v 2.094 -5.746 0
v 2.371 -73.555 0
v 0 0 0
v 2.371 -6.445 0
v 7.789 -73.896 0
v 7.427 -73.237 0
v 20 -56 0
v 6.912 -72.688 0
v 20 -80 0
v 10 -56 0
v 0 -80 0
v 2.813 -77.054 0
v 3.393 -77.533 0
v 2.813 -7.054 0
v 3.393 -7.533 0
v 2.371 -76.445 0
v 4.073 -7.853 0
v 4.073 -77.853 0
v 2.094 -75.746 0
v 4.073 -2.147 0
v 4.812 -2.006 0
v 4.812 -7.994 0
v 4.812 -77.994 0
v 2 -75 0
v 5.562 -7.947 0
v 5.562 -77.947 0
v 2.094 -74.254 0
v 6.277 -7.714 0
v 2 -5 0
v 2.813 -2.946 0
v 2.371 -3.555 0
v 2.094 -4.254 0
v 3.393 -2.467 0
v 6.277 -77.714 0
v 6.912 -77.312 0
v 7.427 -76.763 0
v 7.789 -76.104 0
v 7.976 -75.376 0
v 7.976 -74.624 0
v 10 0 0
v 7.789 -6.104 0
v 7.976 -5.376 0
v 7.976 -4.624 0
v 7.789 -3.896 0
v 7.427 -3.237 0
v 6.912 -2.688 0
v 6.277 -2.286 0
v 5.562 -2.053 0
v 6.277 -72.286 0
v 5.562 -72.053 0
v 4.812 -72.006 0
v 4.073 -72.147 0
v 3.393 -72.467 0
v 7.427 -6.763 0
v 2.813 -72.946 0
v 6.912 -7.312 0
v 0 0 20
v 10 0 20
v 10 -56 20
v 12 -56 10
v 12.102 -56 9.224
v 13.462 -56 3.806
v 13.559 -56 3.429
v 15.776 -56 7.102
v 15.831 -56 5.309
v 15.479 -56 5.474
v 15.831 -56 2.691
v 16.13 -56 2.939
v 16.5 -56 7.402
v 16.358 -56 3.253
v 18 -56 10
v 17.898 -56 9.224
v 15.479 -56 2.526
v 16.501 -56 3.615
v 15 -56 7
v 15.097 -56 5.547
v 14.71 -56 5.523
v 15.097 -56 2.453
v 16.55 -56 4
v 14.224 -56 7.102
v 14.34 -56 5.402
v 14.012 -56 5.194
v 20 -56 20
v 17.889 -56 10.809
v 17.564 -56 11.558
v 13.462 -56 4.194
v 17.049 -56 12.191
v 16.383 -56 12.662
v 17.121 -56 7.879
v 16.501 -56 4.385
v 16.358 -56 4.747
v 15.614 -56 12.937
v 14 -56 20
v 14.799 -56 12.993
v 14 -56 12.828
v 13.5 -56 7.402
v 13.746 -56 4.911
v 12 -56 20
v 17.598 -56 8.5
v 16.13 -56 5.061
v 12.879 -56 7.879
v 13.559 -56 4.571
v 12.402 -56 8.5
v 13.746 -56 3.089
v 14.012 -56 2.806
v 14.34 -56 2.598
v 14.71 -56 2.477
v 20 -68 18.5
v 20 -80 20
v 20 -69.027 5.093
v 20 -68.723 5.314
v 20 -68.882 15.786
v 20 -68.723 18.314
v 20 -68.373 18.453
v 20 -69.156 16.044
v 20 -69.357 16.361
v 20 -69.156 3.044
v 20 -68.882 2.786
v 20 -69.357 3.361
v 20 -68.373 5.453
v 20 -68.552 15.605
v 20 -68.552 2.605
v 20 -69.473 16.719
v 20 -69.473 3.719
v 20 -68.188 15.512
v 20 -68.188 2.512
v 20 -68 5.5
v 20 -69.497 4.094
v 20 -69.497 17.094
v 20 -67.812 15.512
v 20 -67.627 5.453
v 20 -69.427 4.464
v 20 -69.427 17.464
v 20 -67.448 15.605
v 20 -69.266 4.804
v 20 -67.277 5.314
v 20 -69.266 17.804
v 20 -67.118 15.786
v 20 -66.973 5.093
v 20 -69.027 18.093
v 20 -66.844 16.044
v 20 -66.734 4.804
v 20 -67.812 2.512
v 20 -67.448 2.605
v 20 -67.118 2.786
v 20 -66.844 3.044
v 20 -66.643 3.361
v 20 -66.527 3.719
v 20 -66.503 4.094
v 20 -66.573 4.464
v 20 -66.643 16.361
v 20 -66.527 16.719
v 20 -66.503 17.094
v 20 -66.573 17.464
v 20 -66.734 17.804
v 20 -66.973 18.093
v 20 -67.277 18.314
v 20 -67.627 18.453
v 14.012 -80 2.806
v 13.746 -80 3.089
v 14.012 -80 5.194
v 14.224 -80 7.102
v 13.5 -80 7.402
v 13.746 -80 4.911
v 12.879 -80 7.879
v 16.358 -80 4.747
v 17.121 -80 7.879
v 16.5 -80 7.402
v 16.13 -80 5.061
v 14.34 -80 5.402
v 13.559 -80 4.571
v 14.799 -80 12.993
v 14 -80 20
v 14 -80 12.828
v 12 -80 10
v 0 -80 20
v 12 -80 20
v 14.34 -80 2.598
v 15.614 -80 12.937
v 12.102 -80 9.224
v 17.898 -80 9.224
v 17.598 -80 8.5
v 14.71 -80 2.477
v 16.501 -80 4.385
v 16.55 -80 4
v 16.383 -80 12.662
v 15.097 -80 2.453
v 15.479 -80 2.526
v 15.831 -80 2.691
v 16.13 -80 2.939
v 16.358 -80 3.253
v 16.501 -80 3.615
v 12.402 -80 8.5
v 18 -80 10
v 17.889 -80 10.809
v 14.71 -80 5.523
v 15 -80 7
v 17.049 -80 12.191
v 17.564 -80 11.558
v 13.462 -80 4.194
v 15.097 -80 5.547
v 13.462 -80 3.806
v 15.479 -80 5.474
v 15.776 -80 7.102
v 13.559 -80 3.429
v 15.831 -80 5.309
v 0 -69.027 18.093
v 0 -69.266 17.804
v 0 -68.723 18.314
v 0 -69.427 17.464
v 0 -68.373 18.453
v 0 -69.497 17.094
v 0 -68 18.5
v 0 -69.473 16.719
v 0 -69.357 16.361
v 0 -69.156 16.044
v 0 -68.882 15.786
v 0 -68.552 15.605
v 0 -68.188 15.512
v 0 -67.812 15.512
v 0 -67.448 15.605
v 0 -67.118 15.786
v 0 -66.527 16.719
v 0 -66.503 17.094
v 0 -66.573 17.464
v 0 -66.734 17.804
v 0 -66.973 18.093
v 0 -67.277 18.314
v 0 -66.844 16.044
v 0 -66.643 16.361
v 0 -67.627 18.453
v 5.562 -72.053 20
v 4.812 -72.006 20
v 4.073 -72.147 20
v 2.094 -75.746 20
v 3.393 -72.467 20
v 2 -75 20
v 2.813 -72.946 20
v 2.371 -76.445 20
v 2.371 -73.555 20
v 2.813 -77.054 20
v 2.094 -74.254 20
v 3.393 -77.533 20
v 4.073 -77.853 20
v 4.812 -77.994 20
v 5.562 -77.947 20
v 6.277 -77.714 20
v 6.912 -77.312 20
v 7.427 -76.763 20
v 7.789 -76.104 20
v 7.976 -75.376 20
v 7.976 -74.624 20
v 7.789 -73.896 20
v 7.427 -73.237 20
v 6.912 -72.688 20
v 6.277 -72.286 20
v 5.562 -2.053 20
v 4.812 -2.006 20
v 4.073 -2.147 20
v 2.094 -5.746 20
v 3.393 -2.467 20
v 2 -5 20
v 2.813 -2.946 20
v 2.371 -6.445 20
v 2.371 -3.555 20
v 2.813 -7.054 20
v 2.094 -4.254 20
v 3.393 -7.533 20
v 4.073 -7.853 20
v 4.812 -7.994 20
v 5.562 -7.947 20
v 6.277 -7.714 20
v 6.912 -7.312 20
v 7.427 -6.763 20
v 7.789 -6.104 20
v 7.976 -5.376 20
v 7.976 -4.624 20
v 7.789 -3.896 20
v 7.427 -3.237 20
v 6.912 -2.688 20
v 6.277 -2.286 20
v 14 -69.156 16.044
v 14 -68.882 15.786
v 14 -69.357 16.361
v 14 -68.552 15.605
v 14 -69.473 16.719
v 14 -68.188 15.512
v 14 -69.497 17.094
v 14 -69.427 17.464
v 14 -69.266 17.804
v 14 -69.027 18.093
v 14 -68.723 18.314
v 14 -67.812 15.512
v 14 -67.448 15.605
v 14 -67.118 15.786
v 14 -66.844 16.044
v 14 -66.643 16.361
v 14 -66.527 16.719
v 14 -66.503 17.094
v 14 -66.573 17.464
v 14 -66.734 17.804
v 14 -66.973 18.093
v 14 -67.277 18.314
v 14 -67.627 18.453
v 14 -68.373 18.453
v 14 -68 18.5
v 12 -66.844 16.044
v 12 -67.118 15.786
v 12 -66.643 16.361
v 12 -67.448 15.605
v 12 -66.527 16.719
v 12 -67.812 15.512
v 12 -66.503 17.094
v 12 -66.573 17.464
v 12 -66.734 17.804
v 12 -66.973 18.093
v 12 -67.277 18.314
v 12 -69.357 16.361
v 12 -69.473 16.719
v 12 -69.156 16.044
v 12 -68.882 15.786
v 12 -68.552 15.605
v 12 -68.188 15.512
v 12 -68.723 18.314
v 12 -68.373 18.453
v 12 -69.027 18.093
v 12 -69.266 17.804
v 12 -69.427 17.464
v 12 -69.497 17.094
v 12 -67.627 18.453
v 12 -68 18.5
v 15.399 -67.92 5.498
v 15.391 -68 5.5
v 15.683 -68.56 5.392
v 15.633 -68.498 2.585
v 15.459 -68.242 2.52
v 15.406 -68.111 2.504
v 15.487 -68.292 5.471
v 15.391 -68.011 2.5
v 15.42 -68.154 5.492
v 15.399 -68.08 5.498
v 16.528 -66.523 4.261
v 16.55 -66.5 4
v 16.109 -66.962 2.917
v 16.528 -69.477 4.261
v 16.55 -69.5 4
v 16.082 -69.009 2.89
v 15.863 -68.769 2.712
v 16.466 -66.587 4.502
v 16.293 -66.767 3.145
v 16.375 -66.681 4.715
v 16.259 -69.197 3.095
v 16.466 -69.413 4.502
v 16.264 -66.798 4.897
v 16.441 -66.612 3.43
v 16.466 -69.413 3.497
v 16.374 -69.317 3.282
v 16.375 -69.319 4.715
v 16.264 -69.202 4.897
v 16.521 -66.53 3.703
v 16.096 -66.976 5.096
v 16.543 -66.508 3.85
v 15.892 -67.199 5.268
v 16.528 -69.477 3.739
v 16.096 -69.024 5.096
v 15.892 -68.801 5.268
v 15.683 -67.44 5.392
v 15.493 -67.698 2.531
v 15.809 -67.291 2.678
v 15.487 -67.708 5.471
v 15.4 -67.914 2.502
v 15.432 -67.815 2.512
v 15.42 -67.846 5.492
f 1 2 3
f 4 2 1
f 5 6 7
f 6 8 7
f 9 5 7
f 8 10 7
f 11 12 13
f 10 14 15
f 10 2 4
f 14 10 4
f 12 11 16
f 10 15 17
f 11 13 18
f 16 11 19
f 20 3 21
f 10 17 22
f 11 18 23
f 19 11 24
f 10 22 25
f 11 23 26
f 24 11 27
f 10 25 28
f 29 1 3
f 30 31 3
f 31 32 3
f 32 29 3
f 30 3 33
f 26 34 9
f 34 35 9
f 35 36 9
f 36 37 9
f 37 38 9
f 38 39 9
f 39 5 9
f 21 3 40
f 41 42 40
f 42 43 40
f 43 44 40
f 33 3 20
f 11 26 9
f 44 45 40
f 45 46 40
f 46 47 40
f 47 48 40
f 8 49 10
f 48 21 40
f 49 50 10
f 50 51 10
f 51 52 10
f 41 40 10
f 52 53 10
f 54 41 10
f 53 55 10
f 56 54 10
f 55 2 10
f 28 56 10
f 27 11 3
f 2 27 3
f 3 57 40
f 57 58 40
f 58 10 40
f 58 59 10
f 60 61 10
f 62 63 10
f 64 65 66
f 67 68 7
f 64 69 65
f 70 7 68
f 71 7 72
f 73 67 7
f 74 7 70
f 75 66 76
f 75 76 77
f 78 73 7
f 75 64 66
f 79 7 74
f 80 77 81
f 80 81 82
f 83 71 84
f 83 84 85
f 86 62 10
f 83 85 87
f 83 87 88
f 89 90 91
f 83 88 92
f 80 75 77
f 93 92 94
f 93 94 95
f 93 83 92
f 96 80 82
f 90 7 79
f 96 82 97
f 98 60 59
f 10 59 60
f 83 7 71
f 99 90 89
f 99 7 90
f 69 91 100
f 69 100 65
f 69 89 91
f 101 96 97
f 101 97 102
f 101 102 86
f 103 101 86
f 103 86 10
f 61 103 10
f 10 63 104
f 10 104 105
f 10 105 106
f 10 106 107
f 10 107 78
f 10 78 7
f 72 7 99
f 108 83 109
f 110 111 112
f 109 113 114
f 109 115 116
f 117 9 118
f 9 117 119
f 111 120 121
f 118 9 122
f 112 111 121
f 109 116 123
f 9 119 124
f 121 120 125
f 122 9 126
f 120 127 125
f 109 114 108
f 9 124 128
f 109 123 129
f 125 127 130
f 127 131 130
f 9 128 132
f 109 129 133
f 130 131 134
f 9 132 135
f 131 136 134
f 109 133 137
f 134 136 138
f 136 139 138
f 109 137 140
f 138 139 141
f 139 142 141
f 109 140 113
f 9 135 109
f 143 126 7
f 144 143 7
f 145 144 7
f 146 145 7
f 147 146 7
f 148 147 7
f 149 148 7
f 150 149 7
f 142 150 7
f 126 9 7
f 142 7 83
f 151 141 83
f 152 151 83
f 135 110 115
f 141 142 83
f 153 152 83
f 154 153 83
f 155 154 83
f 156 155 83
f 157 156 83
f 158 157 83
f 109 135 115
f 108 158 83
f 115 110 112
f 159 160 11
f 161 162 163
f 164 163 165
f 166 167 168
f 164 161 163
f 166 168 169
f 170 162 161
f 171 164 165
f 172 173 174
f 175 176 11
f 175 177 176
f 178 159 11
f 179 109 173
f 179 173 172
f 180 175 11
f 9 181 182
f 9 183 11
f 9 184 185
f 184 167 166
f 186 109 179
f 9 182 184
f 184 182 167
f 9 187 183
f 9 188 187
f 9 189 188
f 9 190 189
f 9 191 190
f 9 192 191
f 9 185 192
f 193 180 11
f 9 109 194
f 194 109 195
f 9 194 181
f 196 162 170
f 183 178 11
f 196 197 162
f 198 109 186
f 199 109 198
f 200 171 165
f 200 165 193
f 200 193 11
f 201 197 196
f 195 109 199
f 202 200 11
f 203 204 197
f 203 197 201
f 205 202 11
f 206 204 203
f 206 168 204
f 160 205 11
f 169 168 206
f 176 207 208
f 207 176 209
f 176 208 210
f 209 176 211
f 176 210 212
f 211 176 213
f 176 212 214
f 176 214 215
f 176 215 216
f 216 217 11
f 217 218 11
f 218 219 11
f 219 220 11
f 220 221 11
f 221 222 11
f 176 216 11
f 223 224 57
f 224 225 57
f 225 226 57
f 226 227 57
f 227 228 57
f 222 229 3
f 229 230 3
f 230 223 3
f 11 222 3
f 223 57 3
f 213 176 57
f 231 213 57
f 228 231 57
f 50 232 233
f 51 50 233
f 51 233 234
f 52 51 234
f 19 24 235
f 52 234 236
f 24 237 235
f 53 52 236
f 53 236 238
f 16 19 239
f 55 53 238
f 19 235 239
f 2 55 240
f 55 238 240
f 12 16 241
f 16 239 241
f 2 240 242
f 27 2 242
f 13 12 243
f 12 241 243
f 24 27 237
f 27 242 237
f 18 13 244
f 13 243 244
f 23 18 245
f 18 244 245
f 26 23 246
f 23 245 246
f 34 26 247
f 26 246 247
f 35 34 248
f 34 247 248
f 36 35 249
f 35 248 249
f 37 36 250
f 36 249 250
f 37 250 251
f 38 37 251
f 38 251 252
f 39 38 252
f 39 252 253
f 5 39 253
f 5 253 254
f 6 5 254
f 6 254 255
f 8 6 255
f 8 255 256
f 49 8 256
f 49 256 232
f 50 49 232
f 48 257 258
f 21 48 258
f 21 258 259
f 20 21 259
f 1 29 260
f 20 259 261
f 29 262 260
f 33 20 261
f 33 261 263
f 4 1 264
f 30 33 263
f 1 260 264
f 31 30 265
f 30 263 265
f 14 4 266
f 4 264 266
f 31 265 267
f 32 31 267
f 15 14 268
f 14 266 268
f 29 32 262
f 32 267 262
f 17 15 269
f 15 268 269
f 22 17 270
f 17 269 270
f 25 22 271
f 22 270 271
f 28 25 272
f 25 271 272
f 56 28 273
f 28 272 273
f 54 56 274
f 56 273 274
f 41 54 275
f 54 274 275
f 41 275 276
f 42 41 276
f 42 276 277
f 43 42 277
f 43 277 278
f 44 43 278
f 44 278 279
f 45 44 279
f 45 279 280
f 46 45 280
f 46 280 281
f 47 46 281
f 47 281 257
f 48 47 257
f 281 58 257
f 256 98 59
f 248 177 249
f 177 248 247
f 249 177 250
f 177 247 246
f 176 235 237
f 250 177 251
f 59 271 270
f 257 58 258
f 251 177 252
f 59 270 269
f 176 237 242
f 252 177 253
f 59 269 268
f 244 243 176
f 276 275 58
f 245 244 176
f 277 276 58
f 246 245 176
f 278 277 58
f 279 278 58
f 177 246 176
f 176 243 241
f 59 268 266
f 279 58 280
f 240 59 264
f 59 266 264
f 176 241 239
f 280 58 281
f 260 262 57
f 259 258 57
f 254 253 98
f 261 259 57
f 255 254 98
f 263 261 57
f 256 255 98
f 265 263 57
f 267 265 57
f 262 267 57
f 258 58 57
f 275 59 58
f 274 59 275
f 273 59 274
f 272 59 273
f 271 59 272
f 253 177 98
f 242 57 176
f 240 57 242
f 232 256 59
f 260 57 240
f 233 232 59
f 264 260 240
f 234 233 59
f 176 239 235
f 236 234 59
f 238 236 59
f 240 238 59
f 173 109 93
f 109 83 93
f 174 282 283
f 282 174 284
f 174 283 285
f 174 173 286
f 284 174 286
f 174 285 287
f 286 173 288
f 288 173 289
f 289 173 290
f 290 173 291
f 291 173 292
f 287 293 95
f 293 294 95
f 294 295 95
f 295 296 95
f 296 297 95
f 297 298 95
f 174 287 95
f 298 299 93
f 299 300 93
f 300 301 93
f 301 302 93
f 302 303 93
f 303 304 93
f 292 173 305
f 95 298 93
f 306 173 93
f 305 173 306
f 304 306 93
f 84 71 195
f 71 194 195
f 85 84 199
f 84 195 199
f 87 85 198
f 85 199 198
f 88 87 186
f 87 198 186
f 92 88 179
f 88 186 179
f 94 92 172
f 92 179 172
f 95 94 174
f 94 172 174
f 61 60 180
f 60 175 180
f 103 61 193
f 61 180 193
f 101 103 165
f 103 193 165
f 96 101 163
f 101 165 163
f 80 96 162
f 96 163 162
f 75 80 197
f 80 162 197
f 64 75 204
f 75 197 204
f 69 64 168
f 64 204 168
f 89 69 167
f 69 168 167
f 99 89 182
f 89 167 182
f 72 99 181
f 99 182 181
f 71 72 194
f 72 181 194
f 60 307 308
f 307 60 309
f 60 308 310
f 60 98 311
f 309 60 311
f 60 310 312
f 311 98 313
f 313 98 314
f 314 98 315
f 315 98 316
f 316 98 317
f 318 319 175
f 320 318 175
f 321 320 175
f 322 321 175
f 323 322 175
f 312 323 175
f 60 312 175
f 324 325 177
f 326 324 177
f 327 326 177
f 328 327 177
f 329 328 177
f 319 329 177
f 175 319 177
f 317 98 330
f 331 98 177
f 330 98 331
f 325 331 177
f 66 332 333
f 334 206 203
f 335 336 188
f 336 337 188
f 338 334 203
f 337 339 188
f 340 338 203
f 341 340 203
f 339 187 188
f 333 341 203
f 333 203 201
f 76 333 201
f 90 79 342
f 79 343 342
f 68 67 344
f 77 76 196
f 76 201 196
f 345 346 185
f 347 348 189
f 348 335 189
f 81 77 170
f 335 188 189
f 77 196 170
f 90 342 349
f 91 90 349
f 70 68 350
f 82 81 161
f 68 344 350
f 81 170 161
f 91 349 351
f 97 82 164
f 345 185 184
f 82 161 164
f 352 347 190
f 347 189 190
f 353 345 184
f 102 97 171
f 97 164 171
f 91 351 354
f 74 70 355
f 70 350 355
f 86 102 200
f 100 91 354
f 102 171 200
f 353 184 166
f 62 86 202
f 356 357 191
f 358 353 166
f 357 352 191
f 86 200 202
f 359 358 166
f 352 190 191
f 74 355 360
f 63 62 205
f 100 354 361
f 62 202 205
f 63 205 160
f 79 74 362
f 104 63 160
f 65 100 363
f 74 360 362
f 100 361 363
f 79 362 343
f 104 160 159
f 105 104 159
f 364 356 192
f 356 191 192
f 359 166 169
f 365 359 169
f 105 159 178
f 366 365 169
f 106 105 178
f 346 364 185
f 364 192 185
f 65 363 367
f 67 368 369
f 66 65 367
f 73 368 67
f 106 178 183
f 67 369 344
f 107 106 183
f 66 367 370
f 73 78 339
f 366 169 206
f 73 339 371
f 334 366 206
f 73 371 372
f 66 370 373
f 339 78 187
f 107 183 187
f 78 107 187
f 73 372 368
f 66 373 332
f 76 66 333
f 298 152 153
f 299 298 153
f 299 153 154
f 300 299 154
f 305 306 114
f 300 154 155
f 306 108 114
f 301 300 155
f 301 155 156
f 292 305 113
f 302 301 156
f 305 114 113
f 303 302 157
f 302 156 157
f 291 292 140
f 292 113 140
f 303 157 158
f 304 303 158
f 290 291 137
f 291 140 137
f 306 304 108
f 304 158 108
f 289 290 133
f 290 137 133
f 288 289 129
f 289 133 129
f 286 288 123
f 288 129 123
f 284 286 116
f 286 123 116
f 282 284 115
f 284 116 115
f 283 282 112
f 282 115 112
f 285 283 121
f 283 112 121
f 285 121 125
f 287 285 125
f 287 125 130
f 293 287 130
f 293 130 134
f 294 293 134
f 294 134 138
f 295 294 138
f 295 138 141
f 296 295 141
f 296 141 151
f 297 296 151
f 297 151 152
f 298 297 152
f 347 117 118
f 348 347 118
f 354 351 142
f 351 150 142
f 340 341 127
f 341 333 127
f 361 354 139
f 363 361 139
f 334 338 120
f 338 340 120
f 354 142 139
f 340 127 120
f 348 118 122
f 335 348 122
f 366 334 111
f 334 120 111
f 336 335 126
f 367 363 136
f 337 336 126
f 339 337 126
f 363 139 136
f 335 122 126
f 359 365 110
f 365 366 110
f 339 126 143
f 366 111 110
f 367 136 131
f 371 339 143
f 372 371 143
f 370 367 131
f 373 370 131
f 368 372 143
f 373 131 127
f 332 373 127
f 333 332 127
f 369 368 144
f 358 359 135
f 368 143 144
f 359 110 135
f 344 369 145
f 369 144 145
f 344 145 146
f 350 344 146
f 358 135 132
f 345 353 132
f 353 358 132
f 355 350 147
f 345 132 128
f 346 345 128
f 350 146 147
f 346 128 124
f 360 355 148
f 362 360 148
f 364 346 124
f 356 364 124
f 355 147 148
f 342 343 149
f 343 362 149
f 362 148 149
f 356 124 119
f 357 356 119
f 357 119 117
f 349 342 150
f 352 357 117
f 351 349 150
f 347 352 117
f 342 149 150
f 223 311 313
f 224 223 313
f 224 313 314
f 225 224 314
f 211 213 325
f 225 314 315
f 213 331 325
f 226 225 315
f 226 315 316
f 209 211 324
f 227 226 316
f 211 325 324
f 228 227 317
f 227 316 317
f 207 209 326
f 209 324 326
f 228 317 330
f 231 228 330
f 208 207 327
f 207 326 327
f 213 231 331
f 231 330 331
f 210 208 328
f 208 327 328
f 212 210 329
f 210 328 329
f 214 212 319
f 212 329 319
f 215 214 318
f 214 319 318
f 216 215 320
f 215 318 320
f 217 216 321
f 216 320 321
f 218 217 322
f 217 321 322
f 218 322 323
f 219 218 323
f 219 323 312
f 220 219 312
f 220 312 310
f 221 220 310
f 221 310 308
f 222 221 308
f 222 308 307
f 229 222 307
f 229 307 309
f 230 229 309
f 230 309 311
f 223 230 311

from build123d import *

# Parameters (mm, degrees)
SKETCH_W        = 20
SKETCH_H        = 20
PAD_DEPTH       = 80
SKETCH001_R     = 3
POCKET_DEPTH    = 20.001
SKETCH002_W     = 10
SKETCH002_H     = 56
POCKET001_DEPTH = 20.001
SKETCH003_R     = 3
SKETCH003_R_2   = 1.55
POCKET002_DEPTH = 80.001
SKETCH004_W     = 2
SKETCH004_H     = 24
POCKET003_DEPTH = 10
SKETCH005_R     = 1.5
POCKET004_DEPTH = 5
SKETCH006_R     = 1.5
POCKET005_DEPTH = 20.001


with BuildPart() as part:
    # Sketch → Pad (new body)
    with BuildSketch(Plane.XZ):
        with Locations((10, 10)):
            Rectangle(SKETCH_W, SKETCH_H)
    extrude(amount=PAD_DEPTH)

    # Sketch001 (on Face3 of Pad) → Pocket (cut, through all)
    with BuildSketch(Plane(origin=(0, 0, 20), x_dir=(-1, 0, 0), z_dir=(0, 0, 1))):
        with Locations((-5, 5)):
            Circle(SKETCH001_R)
        with Locations((-5, 75)):
            Circle(SKETCH001_R)
    extrude(amount=-POCKET_DEPTH, mode=Mode.SUBTRACT)

    # Sketch002 (on Face8 of Pocket) → Pocket001 (cut, through all)
    with BuildSketch(Plane(origin=(0, 0, 20), x_dir=(-1, 0, 0), z_dir=(0, 0, 1))):
        with Locations((-15, 28)):
            Rectangle(SKETCH002_W, SKETCH002_H)
    extrude(amount=-POCKET001_DEPTH, mode=Mode.SUBTRACT)

    # Sketch003 (on Face6 of Pocket001) → Pocket002 (cut, through all)
    with BuildSketch(Plane.XZ.offset(80)):
        with Locations((15, 10)):
            Circle(SKETCH003_R)
        with Locations((15, 4)):
            Circle(SKETCH003_R_2)
    extrude(amount=-POCKET002_DEPTH, mode=Mode.SUBTRACT)

    # Sketch004 (on Face10 of Pocket002) → Pocket003 (cut)
    with BuildSketch(Plane(origin=(0, 0, 20), x_dir=(-1, 0, 0), z_dir=(0, 0, 1))):
        with Locations((-13, 68)):
            Rectangle(SKETCH004_W, SKETCH004_H)
    extrude(amount=-POCKET003_DEPTH, mode=Mode.SUBTRACT)

    # Sketch005 (on Face5 of Pocket003) → Pocket004 (cut)
    with BuildSketch(Plane(origin=(20, 0, 0), x_dir=(0, 0, 1), z_dir=(1, 0, 0))):
        with Locations((4, 68)):
            Circle(SKETCH005_R)
    extrude(amount=-POCKET004_DEPTH, mode=Mode.SUBTRACT)

    # Sketch006 (on Face5 of Pocket004) → Pocket005 (cut, through all)
    with BuildSketch(Plane(origin=(20, 0, 0), x_dir=(0, 0, 1), z_dir=(1, 0, 0))):
        with Locations((17, 68)):
            Circle(SKETCH006_R)
    extrude(amount=-POCKET005_DEPTH, mode=Mode.SUBTRACT)


solid = part.part
